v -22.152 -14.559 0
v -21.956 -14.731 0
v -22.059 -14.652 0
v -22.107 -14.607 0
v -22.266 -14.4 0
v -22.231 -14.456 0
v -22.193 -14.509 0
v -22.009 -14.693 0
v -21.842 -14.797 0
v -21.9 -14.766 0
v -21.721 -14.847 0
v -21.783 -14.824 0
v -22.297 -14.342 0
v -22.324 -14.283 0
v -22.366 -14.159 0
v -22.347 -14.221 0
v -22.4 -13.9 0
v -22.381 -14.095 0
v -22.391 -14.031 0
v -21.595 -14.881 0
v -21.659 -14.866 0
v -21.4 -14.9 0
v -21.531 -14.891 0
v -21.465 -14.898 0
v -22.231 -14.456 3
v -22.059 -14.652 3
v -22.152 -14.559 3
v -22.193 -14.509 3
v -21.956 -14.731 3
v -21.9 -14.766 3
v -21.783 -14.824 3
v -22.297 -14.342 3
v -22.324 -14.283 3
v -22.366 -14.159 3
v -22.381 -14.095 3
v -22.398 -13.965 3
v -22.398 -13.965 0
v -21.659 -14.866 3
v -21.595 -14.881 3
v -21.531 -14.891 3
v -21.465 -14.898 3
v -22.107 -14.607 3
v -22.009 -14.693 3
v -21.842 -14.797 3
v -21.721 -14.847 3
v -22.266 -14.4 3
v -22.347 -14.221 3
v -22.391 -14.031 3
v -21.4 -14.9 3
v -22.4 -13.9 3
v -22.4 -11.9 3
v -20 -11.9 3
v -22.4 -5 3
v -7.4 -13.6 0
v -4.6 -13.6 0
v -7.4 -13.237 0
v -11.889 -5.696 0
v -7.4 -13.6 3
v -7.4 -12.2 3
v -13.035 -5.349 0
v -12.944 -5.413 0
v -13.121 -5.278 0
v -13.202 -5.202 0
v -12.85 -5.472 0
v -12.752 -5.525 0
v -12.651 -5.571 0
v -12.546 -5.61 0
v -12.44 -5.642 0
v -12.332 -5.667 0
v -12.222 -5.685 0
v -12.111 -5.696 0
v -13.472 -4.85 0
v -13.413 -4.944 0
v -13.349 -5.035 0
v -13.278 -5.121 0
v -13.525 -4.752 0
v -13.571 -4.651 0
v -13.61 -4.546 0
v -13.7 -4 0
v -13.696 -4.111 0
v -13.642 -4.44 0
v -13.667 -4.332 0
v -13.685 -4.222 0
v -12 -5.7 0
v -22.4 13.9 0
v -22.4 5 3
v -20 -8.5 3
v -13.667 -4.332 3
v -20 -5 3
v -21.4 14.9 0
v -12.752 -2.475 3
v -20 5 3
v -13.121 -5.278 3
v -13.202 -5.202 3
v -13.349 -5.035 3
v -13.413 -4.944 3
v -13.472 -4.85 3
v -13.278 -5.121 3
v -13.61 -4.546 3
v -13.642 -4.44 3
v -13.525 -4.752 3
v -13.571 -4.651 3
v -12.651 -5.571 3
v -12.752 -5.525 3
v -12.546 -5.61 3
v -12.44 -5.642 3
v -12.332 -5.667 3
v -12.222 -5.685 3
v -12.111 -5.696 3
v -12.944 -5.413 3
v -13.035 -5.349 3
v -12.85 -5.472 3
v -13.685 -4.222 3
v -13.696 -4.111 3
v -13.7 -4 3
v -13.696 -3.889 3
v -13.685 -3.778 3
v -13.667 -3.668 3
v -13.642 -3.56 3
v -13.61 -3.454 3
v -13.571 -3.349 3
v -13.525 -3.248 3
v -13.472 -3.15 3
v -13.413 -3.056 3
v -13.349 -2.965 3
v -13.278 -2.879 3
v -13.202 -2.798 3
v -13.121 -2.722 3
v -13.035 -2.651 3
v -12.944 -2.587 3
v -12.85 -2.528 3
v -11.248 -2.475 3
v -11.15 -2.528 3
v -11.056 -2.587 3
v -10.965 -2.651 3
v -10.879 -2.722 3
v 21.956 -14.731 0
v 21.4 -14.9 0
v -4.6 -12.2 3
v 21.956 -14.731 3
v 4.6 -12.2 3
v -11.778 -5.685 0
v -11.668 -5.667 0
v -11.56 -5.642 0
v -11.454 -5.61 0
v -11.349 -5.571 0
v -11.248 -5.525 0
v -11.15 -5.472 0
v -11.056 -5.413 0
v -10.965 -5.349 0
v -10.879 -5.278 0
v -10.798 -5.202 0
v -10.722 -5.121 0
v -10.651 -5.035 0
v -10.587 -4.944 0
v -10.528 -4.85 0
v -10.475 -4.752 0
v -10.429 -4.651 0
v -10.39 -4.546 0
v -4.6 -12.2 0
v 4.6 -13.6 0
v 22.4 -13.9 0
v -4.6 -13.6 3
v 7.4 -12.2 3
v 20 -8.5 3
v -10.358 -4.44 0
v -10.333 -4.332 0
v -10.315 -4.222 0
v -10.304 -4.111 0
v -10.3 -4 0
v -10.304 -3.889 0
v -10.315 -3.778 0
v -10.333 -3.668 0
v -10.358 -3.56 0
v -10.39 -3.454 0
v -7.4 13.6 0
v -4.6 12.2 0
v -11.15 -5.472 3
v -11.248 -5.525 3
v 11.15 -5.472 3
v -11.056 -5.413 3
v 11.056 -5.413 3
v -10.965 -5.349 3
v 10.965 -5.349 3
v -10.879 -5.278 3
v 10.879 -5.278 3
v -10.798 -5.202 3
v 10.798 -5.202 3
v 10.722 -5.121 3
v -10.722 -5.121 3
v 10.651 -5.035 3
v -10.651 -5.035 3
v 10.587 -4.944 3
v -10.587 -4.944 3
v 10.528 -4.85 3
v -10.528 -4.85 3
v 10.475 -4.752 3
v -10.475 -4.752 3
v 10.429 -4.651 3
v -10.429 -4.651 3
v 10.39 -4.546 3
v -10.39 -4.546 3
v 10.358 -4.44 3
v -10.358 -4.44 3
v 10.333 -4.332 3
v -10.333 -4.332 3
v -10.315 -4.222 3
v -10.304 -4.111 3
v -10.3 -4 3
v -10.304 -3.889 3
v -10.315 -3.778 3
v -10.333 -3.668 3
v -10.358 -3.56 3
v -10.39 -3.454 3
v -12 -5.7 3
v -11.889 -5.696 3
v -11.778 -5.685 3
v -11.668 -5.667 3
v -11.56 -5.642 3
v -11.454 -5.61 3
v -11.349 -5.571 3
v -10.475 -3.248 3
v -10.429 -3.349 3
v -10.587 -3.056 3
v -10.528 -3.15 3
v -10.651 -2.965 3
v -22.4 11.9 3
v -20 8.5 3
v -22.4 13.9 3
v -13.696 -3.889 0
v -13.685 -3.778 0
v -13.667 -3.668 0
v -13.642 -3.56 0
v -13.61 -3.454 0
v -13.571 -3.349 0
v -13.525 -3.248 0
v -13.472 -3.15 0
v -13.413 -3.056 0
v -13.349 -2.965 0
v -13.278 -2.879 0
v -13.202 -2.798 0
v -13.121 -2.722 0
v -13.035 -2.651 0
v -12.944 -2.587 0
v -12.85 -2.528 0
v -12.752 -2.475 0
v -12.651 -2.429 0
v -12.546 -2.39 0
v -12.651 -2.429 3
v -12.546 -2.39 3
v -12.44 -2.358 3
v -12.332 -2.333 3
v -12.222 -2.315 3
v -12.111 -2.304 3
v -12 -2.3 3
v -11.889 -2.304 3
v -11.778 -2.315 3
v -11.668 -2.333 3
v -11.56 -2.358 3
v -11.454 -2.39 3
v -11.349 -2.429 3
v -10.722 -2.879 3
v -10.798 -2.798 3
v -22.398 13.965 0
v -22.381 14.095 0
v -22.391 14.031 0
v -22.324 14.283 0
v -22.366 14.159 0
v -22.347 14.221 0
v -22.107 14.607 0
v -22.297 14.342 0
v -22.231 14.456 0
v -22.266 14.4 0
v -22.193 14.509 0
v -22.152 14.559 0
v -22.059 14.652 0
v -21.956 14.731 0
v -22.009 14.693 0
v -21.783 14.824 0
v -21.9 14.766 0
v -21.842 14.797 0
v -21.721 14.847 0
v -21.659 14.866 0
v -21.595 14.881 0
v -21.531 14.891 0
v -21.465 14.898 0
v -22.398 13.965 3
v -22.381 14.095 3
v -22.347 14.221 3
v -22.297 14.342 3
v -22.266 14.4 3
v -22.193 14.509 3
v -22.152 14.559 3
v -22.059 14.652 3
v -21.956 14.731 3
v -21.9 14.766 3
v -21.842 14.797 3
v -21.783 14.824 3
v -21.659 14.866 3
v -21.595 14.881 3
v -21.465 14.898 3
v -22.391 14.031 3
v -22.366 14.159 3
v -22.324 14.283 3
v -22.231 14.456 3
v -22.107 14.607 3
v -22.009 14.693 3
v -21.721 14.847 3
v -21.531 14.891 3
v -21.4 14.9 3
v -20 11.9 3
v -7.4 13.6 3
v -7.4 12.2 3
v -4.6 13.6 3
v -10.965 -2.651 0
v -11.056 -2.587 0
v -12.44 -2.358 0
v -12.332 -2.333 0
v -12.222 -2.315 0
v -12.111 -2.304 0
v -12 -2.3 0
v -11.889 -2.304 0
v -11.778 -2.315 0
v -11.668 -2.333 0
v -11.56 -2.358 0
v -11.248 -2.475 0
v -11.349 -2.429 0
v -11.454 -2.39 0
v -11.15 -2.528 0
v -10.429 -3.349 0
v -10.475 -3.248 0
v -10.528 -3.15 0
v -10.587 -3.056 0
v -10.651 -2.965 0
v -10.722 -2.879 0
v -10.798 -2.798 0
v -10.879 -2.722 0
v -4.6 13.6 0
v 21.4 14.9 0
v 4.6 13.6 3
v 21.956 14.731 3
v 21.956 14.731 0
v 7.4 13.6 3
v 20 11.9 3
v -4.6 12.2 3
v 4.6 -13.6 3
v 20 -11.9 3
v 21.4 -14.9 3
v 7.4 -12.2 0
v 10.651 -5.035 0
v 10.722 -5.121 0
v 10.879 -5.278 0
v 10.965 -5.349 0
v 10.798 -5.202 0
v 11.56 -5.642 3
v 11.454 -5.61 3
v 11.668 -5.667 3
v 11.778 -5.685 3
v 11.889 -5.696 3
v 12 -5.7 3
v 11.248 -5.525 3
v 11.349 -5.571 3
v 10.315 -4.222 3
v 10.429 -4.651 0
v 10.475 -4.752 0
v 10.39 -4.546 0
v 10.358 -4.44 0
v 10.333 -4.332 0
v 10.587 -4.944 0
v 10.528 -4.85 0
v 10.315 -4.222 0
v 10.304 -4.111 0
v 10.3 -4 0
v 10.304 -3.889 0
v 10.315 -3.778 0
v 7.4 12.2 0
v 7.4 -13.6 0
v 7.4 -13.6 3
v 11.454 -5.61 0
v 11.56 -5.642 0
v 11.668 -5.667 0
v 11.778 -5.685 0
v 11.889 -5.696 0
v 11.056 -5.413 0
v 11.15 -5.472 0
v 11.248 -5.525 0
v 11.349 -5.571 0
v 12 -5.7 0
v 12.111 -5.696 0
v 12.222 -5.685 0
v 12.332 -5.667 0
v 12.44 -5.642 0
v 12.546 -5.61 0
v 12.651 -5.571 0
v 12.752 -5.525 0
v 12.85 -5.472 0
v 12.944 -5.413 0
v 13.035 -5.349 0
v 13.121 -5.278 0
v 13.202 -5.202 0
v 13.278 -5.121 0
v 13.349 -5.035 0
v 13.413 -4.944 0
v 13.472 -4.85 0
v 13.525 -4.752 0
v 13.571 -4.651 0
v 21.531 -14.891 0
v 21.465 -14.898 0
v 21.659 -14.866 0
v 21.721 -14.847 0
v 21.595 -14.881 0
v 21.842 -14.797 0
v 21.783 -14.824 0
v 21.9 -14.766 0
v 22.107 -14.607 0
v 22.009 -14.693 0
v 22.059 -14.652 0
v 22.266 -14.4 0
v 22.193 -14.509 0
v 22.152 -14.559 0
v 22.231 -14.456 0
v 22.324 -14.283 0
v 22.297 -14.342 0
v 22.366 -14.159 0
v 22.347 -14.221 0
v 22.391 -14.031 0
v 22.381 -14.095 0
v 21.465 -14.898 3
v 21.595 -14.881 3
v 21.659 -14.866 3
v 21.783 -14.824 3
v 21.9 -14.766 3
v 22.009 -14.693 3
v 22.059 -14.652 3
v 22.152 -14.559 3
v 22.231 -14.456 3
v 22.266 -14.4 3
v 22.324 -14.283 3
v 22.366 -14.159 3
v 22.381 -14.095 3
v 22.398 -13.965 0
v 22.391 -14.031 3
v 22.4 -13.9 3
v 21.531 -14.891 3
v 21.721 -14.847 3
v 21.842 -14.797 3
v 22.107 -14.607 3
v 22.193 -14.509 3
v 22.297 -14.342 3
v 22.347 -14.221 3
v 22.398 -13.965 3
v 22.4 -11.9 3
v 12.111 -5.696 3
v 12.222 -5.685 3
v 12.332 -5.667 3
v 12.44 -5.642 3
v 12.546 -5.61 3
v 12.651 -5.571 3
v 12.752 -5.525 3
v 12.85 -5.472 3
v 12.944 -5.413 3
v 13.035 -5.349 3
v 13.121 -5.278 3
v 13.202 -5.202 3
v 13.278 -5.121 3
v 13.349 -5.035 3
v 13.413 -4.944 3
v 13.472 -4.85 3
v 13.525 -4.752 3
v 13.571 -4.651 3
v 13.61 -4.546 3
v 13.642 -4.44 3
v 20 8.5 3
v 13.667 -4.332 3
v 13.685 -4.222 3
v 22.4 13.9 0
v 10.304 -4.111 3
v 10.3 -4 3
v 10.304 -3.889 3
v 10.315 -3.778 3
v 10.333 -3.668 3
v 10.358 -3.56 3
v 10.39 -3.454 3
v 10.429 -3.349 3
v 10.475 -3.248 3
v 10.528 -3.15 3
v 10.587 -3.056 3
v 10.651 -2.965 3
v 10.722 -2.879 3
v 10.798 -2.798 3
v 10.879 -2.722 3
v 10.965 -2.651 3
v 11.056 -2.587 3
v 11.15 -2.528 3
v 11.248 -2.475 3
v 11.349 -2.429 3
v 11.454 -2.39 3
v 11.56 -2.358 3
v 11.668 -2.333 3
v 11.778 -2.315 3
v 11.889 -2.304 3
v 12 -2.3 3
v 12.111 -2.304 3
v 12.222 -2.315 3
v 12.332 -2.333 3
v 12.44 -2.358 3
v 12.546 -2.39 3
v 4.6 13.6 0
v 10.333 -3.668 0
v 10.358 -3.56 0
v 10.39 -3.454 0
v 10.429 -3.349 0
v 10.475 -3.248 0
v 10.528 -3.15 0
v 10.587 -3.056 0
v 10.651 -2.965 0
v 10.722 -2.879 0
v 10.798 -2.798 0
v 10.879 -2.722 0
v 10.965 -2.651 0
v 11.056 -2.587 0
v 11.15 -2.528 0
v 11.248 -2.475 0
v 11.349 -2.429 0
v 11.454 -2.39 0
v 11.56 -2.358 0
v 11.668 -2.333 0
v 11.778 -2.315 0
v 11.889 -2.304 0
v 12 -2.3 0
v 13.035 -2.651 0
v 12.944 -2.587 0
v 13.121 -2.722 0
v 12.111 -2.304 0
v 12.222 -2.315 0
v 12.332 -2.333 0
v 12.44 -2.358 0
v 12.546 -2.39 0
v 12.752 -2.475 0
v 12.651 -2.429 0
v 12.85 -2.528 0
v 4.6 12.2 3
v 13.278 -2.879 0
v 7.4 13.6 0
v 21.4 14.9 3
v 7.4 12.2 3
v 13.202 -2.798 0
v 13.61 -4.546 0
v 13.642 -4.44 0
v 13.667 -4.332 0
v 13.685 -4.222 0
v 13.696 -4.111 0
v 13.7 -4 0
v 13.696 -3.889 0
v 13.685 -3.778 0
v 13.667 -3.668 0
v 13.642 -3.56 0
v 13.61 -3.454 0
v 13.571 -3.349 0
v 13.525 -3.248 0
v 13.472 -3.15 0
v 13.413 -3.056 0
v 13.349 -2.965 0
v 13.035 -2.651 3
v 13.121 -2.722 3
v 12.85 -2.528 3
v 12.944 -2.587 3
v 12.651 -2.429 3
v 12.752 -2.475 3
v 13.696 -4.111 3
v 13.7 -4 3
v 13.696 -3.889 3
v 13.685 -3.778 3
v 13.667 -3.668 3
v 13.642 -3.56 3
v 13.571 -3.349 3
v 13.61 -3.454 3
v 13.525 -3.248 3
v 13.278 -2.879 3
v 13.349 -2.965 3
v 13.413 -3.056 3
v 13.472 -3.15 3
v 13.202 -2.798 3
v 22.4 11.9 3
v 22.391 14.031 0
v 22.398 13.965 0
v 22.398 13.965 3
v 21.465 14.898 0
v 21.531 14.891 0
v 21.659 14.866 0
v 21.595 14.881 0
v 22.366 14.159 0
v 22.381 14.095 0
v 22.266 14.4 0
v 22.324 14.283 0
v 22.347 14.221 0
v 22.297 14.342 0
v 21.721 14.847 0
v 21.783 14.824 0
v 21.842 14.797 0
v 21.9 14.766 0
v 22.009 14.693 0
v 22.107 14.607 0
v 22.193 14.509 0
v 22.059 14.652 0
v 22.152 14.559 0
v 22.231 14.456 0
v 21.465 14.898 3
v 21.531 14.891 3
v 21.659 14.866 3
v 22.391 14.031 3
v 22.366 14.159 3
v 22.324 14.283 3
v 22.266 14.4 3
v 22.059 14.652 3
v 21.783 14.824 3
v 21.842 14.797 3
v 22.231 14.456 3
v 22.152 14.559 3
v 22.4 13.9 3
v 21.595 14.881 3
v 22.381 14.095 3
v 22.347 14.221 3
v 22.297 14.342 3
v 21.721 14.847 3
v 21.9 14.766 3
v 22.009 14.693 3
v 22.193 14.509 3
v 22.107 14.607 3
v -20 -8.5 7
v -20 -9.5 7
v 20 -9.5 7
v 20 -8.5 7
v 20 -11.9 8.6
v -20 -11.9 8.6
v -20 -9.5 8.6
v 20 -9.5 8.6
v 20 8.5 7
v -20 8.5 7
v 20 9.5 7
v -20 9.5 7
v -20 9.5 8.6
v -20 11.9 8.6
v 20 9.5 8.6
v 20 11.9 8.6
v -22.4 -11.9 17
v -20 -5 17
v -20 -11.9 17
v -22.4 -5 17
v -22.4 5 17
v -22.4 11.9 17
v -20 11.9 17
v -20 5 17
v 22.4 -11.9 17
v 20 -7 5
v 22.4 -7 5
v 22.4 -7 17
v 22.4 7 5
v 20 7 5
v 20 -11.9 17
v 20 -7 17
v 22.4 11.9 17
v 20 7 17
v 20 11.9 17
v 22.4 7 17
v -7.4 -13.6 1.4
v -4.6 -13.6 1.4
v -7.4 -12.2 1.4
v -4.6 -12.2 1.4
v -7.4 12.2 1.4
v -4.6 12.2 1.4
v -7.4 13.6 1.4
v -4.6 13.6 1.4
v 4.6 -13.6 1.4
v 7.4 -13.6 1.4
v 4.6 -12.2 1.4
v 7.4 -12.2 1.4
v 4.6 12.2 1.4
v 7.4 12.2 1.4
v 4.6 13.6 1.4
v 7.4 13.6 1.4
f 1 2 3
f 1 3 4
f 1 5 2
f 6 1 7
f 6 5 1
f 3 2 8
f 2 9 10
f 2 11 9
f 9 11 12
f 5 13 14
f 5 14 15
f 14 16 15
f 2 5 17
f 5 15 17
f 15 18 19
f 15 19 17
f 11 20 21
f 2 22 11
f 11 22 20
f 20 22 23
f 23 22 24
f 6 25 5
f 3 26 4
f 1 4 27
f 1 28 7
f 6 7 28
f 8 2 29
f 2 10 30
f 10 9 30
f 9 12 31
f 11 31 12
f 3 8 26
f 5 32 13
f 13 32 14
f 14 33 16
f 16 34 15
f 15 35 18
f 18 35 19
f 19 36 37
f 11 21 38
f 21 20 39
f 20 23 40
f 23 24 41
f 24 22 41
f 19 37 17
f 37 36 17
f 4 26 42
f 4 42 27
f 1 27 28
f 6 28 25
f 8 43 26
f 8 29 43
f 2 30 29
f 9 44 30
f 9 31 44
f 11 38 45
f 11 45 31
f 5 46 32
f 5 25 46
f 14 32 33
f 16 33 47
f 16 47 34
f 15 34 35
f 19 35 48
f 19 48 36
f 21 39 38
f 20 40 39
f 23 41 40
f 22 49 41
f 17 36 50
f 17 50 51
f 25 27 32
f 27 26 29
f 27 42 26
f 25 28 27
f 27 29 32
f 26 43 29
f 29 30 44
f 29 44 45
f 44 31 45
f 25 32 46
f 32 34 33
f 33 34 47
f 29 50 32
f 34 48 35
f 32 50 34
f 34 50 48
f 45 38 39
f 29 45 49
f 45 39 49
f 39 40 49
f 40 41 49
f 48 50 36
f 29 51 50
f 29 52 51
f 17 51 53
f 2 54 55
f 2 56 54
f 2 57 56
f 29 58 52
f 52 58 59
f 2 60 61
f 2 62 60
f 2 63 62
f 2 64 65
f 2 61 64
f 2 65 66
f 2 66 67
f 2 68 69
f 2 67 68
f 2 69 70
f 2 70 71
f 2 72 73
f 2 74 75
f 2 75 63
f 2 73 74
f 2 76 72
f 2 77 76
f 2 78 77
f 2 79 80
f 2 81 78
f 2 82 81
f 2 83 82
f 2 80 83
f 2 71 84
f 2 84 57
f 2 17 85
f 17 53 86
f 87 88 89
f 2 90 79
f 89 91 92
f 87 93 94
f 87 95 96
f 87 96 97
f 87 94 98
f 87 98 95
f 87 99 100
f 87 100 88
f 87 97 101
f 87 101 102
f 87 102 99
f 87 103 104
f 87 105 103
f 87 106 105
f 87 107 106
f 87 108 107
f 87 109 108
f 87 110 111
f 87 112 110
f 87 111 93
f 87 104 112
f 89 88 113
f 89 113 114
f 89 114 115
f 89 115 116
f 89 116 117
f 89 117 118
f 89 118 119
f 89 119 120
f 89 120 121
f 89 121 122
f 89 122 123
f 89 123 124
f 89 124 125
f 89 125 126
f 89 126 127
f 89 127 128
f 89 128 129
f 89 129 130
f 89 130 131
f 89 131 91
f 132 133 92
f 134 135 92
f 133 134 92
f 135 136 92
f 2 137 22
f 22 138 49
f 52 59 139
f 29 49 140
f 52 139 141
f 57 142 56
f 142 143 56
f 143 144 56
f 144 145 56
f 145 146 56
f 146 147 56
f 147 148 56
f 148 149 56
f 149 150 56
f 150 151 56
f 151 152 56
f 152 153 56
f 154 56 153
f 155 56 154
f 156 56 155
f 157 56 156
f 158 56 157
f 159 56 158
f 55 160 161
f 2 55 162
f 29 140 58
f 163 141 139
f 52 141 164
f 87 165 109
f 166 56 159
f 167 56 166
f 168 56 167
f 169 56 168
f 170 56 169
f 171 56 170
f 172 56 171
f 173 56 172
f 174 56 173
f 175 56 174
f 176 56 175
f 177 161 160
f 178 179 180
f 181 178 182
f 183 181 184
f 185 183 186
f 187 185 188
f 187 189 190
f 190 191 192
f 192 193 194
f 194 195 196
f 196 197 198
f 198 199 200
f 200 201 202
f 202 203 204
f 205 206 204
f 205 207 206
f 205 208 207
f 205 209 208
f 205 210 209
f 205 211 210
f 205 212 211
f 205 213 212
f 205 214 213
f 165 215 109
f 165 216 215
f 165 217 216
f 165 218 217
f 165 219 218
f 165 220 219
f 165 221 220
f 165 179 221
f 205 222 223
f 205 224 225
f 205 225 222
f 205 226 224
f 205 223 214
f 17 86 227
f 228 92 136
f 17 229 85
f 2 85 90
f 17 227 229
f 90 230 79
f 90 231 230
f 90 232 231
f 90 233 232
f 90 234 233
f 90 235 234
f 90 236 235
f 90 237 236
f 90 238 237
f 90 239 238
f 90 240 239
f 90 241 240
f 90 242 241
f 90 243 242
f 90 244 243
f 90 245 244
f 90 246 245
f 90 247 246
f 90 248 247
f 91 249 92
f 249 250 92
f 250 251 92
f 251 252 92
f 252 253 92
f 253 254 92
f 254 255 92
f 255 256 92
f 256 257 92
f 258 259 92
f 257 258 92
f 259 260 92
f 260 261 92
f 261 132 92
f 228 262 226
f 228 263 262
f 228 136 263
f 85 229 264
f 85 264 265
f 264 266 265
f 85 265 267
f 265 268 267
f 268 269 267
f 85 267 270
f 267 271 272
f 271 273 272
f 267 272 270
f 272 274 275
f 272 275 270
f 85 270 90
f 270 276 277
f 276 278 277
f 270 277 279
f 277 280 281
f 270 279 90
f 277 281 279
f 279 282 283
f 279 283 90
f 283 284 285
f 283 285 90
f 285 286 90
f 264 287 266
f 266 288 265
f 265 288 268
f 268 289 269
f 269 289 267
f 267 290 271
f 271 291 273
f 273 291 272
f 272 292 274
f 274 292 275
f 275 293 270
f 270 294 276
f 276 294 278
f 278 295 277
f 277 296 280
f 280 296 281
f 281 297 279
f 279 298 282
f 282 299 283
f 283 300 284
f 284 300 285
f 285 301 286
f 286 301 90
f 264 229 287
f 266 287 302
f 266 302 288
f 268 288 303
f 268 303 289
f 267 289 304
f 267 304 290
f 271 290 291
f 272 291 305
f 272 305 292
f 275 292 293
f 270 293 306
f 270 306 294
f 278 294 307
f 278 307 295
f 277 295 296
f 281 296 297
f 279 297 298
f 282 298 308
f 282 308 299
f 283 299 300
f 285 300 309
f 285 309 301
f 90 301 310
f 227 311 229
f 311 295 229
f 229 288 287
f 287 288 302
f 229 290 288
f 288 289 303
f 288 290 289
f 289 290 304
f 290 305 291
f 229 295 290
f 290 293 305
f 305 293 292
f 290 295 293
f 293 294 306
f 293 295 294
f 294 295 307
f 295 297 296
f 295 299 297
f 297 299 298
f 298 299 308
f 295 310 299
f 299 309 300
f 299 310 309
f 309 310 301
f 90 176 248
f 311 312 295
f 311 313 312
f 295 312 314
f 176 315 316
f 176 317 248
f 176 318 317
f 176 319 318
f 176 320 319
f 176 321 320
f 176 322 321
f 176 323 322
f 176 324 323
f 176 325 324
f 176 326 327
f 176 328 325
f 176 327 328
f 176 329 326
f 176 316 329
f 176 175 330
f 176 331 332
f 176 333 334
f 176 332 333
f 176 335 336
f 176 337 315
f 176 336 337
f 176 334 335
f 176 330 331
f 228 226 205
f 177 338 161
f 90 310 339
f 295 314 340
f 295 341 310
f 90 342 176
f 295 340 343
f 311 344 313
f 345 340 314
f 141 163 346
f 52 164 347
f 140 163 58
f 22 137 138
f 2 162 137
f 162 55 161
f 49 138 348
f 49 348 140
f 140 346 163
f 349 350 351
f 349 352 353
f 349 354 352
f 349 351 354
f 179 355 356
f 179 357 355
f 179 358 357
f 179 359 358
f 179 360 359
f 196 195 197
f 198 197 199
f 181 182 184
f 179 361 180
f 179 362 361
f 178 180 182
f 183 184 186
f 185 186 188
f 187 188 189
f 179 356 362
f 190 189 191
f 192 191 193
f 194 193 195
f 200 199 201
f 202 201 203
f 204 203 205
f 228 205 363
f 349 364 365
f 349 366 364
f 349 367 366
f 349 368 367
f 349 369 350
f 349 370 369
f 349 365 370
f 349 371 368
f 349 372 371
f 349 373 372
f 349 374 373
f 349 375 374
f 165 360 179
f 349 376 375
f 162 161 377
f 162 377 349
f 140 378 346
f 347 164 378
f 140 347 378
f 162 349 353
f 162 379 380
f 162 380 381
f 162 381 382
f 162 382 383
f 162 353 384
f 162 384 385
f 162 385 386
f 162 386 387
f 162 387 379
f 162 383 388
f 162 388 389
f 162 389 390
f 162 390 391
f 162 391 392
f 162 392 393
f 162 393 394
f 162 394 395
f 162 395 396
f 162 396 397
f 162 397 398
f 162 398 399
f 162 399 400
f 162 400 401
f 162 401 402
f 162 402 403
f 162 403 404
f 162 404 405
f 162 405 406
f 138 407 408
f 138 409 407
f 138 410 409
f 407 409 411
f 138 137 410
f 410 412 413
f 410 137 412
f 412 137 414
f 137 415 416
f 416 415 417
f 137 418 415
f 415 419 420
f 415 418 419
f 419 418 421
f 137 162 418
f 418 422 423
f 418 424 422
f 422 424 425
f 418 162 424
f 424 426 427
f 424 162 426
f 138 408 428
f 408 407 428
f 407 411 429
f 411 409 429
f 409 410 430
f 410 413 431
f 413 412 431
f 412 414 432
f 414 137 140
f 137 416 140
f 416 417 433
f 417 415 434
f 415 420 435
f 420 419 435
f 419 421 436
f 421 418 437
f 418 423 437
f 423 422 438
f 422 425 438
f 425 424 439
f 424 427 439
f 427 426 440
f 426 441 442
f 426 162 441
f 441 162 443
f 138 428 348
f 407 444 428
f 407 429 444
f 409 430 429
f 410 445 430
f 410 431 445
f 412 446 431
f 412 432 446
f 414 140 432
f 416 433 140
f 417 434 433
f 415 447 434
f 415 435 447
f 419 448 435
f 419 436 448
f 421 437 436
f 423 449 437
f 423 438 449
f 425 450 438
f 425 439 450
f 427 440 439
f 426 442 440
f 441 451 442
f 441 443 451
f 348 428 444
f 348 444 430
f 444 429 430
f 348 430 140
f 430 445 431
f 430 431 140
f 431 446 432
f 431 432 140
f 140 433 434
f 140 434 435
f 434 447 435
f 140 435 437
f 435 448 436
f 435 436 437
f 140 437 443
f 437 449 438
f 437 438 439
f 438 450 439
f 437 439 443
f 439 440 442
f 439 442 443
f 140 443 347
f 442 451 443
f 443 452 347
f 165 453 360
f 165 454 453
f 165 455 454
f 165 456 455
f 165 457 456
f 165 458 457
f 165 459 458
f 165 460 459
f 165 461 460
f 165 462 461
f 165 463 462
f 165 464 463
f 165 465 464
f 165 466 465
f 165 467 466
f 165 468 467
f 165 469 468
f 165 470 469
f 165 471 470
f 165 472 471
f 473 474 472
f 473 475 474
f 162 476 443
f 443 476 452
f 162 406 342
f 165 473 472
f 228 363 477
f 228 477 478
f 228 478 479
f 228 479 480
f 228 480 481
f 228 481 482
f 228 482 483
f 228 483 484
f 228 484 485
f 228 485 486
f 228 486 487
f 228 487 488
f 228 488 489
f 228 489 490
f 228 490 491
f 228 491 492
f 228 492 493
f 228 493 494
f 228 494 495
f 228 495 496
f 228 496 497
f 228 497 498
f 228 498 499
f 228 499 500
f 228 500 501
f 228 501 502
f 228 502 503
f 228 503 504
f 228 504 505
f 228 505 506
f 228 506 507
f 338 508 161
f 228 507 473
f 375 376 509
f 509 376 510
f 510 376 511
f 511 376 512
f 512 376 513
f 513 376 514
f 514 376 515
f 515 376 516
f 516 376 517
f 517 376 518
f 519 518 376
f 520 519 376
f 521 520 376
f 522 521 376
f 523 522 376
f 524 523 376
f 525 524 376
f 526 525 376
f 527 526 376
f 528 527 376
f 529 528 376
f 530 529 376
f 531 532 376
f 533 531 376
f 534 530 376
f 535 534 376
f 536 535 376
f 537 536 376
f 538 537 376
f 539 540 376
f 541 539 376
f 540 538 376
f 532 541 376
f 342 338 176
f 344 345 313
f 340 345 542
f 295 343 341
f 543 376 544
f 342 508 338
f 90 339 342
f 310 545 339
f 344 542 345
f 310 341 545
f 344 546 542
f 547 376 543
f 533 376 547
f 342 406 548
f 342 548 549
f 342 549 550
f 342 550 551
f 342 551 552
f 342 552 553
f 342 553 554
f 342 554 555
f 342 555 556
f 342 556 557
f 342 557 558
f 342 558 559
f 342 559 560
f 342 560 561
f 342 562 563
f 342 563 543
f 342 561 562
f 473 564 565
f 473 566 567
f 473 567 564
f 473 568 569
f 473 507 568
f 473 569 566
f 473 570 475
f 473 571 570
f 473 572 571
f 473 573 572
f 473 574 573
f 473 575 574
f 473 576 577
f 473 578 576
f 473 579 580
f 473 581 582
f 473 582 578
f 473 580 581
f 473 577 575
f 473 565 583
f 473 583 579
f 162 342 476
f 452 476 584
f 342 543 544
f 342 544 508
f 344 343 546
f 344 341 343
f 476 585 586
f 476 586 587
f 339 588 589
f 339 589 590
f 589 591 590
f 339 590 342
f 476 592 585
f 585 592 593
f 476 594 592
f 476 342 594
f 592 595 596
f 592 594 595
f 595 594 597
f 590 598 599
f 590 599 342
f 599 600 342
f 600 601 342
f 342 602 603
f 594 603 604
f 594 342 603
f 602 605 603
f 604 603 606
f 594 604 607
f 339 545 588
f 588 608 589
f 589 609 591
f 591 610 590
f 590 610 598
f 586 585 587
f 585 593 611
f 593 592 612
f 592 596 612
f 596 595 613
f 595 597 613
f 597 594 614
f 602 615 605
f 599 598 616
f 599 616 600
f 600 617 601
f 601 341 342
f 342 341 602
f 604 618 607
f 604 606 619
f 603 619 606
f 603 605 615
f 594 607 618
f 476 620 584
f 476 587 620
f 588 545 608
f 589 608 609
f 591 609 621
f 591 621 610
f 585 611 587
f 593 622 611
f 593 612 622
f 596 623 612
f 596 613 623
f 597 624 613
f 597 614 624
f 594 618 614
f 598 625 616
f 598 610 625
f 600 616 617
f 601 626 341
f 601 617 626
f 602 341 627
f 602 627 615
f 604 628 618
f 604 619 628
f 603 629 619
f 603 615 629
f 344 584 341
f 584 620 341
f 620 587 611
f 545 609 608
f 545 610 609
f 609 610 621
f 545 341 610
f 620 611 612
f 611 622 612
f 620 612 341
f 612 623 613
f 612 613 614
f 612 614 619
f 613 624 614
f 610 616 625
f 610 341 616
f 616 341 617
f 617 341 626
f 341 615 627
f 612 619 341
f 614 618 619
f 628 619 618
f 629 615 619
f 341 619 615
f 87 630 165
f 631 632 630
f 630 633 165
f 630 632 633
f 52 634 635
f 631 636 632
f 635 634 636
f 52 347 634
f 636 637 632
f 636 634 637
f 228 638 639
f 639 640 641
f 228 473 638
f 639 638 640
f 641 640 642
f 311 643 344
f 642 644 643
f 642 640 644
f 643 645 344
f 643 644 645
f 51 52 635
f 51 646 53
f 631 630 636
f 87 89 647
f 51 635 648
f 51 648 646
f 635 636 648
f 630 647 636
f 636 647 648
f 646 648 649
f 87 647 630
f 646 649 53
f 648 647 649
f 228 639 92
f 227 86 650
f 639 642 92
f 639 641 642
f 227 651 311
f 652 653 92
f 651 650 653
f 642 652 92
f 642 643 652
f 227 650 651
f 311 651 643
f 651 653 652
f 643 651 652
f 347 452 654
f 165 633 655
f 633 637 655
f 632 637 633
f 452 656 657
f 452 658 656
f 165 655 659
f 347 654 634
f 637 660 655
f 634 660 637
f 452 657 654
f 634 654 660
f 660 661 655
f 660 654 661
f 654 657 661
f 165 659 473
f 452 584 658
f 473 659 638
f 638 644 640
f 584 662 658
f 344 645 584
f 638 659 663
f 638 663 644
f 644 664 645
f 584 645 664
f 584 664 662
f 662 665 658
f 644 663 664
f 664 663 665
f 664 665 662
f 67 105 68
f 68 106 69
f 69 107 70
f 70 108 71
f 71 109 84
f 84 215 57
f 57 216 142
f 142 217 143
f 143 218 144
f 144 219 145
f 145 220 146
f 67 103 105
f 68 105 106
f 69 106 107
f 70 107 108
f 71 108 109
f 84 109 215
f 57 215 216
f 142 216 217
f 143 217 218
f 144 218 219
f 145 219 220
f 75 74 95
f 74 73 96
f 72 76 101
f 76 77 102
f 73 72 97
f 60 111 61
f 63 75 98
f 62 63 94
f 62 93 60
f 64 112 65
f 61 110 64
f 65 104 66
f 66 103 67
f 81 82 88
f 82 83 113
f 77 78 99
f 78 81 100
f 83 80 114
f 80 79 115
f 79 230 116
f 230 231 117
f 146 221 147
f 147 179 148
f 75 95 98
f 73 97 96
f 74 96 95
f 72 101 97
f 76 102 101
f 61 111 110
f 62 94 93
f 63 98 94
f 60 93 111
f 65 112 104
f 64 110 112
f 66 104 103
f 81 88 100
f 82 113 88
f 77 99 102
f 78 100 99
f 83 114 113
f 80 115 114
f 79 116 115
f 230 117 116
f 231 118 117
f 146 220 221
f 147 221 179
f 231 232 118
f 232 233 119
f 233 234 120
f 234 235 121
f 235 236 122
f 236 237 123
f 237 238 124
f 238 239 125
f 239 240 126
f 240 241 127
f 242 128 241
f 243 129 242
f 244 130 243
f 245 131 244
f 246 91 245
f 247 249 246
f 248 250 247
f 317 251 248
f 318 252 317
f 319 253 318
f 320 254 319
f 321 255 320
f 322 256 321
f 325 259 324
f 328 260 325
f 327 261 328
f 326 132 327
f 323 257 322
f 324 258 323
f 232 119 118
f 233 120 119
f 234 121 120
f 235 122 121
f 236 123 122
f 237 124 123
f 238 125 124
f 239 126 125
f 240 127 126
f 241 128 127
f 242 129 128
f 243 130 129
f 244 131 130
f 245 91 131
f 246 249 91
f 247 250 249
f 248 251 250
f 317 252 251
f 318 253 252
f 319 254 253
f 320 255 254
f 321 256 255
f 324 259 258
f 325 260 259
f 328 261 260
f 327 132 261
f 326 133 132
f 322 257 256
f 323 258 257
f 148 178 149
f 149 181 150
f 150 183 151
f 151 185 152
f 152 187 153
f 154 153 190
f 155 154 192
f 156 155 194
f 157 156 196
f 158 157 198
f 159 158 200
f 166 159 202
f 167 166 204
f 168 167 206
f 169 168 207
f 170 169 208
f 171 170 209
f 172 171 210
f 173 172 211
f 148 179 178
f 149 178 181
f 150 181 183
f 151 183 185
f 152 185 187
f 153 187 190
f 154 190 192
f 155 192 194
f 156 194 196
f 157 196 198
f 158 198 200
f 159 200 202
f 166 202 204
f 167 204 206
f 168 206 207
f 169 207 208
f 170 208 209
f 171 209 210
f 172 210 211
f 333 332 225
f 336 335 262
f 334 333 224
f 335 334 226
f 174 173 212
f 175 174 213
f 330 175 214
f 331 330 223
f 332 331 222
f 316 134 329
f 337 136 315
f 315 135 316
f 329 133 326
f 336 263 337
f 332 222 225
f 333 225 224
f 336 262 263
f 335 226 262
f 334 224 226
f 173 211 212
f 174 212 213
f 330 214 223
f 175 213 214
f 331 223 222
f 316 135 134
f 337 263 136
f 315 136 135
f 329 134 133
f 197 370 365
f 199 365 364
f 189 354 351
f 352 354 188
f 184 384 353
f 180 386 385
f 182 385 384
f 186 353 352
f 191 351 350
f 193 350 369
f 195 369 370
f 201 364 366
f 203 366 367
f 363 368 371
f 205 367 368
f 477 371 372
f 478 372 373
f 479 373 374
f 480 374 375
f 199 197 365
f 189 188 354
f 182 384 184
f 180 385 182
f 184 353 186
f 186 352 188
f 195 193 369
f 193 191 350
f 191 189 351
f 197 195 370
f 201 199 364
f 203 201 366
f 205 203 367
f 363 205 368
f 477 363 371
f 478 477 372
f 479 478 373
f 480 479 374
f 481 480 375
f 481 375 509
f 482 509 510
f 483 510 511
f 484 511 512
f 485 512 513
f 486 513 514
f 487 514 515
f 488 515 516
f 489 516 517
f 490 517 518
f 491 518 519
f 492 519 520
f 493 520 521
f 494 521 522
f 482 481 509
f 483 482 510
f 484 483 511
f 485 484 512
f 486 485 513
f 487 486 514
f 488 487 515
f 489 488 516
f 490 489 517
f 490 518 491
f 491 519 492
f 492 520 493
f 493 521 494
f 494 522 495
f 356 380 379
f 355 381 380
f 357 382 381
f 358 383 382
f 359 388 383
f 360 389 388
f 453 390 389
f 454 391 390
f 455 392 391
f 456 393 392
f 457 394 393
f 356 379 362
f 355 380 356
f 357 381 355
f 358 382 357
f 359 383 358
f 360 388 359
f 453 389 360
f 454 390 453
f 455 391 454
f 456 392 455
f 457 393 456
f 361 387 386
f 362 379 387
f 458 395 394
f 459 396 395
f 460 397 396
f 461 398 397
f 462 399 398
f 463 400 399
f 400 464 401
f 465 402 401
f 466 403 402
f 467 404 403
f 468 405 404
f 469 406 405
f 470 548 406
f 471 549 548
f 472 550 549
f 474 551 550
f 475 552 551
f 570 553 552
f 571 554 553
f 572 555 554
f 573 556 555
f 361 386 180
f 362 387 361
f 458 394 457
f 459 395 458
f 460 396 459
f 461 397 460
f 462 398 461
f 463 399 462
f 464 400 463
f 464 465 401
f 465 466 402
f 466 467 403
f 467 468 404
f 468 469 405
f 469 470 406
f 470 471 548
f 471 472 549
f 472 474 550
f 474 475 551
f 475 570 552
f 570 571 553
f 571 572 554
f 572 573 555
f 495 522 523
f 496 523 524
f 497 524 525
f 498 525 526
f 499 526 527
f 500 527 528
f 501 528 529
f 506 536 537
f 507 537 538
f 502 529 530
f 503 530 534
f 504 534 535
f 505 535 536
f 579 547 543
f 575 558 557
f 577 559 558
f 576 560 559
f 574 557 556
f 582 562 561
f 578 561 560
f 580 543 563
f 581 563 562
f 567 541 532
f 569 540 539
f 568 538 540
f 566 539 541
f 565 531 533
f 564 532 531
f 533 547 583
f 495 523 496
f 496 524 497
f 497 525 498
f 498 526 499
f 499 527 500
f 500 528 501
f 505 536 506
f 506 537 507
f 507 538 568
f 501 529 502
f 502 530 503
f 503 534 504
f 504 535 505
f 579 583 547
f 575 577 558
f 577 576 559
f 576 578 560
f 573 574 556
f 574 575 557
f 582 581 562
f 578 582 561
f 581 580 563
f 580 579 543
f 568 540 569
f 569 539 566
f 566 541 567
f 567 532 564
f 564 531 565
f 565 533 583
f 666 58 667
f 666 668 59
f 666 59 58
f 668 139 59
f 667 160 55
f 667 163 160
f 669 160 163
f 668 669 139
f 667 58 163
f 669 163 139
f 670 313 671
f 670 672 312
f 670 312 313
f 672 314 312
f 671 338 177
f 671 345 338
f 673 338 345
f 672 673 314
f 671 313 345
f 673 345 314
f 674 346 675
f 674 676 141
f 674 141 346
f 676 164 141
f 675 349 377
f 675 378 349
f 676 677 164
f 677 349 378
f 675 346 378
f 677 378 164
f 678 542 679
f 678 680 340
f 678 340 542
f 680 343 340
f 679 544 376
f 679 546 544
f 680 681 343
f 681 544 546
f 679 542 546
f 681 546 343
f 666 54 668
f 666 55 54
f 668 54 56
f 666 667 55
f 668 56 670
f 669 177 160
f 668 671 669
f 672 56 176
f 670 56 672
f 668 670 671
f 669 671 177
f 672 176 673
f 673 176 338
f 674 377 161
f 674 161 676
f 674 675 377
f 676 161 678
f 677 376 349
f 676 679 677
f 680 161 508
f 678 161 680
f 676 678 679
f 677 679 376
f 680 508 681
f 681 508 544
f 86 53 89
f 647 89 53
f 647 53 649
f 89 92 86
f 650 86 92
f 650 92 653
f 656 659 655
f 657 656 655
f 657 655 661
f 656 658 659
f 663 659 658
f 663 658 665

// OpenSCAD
// Units: mm. Flat floor down; open-top rear notch needs no bridge support.
// SoBotz SBTZ00017 2S module envelope; measure purchased hardware before printing.
$fn=96;
use <../cute_rover_complete.scad>;
usb_c_charger_mount();
